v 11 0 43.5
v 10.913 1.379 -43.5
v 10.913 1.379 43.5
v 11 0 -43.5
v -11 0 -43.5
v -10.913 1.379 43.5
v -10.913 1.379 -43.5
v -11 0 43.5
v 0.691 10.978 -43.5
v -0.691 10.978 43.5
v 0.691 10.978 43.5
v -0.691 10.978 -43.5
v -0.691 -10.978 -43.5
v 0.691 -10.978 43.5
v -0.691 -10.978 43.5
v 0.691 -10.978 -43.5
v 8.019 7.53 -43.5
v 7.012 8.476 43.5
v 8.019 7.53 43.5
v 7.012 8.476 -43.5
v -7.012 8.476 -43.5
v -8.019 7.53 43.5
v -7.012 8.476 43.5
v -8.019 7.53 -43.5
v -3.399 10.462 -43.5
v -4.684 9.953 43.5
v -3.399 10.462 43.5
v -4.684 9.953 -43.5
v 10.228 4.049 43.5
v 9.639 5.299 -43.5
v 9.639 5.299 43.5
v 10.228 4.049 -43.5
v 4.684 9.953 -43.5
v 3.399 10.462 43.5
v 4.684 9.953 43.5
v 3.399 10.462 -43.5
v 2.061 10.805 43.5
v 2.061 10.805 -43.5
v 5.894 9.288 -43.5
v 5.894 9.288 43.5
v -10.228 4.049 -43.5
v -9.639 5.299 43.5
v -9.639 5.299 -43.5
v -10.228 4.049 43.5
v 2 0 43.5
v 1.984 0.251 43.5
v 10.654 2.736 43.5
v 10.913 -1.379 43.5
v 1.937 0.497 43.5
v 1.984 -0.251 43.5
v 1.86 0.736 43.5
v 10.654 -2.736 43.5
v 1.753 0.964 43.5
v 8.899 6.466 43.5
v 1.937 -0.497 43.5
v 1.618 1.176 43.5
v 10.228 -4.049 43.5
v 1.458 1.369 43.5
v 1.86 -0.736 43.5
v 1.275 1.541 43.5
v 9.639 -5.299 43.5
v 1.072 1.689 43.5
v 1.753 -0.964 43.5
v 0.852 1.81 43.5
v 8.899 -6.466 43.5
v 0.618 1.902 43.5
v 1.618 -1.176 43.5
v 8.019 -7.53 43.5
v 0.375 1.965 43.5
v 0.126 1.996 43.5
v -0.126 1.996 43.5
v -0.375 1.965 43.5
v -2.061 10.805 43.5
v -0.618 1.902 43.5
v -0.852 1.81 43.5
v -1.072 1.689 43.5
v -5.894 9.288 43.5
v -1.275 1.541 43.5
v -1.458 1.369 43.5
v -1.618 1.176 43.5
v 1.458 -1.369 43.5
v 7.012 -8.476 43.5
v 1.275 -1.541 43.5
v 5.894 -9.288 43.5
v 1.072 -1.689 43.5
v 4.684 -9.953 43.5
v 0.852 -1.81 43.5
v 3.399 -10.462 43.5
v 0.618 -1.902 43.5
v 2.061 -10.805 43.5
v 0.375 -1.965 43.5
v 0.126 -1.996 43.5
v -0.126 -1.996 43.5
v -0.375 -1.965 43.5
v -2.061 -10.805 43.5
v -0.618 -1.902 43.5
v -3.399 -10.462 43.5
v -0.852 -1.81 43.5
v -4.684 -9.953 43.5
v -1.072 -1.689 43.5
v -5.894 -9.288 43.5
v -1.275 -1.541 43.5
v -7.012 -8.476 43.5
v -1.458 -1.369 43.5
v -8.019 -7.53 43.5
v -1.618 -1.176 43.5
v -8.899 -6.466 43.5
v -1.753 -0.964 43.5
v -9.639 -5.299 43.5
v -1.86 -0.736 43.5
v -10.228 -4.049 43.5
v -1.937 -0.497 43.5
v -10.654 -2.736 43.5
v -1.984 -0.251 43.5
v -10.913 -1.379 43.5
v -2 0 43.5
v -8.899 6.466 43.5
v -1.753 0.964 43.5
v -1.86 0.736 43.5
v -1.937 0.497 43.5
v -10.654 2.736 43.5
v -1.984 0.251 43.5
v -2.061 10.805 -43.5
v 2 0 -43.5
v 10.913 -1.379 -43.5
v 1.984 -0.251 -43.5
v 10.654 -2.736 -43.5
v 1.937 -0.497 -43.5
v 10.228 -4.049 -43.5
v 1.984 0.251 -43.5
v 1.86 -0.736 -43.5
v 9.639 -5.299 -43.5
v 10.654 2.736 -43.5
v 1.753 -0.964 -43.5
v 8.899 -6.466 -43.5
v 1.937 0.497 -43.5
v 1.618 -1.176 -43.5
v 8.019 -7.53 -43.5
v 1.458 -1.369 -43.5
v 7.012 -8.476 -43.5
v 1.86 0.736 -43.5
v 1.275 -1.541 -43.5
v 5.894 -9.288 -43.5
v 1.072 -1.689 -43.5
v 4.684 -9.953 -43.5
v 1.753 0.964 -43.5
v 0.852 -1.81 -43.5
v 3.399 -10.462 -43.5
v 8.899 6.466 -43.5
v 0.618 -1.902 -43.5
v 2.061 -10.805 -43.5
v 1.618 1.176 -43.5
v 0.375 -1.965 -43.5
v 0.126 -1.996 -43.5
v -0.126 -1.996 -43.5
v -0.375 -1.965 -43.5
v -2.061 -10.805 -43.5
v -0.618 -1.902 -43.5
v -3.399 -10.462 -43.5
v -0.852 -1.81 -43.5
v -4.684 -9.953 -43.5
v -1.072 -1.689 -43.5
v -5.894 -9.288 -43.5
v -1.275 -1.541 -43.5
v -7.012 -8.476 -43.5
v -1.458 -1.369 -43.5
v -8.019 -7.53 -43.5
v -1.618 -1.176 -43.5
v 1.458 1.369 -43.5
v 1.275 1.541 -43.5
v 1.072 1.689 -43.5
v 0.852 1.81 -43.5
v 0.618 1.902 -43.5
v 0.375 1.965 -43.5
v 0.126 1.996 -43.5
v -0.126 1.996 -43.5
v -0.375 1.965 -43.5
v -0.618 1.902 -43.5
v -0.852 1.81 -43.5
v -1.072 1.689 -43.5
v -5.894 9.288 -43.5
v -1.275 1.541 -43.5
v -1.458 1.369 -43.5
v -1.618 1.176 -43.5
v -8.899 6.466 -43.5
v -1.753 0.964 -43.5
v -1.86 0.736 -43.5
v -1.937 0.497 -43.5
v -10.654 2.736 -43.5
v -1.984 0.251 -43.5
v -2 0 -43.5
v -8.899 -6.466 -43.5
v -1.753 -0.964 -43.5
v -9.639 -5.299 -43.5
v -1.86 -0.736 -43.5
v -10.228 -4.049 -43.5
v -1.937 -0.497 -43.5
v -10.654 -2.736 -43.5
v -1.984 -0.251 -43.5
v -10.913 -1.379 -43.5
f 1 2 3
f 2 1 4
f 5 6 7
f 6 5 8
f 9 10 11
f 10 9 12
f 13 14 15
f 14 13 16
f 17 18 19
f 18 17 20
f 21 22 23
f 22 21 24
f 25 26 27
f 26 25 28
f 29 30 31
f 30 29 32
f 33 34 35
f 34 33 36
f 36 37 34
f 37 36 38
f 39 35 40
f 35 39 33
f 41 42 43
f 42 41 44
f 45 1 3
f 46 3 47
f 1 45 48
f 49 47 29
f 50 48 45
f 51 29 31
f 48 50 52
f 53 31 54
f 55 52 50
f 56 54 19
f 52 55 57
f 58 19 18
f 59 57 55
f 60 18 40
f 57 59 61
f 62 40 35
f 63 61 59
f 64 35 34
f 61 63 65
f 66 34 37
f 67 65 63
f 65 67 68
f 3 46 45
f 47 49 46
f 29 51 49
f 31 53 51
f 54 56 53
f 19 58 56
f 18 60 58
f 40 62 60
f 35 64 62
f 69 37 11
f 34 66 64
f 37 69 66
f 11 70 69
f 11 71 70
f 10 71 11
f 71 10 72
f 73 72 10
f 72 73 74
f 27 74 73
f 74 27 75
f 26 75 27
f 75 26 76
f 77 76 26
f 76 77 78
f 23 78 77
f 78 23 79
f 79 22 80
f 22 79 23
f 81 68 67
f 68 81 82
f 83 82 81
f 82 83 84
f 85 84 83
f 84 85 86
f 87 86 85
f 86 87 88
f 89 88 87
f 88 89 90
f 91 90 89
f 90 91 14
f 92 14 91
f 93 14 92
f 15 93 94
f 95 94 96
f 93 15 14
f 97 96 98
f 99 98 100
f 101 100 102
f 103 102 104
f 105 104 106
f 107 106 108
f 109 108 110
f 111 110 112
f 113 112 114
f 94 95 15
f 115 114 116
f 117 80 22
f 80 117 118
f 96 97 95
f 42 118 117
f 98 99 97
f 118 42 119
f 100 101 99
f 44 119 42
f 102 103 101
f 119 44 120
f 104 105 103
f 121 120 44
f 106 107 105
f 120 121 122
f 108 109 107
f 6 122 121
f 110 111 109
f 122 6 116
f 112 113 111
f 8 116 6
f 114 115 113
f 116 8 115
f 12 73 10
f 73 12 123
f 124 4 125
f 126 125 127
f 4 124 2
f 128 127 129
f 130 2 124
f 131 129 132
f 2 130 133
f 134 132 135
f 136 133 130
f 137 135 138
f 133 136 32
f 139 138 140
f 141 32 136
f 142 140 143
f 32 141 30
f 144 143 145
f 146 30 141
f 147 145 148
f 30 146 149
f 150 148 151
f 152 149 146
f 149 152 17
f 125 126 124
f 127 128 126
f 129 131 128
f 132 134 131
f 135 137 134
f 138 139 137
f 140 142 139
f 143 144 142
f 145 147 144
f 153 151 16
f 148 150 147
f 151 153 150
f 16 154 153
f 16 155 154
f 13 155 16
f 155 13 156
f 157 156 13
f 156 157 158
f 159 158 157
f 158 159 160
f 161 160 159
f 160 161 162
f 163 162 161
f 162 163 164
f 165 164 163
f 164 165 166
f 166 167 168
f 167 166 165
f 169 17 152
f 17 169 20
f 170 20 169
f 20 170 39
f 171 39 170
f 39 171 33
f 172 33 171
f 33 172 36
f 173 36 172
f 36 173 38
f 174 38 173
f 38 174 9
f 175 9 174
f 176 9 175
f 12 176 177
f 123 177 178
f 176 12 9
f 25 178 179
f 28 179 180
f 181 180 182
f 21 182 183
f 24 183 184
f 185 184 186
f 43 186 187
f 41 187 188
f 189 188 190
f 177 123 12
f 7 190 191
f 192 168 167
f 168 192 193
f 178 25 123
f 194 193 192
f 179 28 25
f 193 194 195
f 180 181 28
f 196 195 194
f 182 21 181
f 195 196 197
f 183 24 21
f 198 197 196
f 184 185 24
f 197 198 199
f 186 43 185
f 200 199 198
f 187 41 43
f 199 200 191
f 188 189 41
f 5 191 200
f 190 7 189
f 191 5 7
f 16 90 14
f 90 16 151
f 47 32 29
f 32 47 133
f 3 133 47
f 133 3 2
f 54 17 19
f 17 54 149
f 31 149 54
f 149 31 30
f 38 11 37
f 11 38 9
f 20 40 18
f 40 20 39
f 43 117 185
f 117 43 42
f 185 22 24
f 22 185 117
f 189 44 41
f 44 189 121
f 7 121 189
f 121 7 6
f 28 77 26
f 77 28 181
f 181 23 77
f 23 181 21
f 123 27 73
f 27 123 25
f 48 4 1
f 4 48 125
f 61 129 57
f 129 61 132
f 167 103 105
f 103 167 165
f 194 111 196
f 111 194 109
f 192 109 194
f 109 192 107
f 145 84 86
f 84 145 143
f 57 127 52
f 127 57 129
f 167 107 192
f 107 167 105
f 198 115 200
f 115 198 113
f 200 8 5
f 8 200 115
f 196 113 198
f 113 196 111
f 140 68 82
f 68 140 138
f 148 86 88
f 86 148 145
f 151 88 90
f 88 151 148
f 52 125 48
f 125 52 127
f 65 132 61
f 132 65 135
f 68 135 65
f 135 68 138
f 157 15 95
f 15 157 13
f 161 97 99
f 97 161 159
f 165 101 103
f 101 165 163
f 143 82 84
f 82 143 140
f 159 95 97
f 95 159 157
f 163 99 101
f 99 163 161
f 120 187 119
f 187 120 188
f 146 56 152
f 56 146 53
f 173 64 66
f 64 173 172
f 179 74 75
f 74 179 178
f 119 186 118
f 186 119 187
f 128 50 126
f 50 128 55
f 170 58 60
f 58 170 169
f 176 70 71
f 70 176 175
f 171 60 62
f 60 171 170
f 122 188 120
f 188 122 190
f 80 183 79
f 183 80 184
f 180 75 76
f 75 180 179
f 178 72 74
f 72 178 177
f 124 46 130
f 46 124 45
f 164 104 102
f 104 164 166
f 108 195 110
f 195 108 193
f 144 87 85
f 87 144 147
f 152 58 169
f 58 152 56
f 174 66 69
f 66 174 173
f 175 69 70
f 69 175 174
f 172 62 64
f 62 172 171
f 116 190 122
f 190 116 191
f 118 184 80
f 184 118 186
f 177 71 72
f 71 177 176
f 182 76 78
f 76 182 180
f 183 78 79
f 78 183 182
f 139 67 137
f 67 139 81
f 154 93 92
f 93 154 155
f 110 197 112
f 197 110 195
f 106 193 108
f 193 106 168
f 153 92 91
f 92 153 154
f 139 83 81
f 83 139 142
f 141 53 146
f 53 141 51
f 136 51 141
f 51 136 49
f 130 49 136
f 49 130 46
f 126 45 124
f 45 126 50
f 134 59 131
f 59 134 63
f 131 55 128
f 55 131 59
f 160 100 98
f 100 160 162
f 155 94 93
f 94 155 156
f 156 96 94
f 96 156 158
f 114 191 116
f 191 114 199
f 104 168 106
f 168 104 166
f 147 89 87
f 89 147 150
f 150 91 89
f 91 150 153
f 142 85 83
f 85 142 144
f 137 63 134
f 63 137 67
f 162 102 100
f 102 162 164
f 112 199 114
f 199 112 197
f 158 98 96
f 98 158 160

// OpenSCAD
$fn = 50;


difference() {
	union() {
		translate(v = [0, 0, -43.5000000000]) {
			cylinder(h = 87, r = 11.0000000000);
		}
	}
	union() {
		translate(v = [0, 0, -100.0000000000]) {
			cylinder(h = 200, r = 2);
		}
	}
}
